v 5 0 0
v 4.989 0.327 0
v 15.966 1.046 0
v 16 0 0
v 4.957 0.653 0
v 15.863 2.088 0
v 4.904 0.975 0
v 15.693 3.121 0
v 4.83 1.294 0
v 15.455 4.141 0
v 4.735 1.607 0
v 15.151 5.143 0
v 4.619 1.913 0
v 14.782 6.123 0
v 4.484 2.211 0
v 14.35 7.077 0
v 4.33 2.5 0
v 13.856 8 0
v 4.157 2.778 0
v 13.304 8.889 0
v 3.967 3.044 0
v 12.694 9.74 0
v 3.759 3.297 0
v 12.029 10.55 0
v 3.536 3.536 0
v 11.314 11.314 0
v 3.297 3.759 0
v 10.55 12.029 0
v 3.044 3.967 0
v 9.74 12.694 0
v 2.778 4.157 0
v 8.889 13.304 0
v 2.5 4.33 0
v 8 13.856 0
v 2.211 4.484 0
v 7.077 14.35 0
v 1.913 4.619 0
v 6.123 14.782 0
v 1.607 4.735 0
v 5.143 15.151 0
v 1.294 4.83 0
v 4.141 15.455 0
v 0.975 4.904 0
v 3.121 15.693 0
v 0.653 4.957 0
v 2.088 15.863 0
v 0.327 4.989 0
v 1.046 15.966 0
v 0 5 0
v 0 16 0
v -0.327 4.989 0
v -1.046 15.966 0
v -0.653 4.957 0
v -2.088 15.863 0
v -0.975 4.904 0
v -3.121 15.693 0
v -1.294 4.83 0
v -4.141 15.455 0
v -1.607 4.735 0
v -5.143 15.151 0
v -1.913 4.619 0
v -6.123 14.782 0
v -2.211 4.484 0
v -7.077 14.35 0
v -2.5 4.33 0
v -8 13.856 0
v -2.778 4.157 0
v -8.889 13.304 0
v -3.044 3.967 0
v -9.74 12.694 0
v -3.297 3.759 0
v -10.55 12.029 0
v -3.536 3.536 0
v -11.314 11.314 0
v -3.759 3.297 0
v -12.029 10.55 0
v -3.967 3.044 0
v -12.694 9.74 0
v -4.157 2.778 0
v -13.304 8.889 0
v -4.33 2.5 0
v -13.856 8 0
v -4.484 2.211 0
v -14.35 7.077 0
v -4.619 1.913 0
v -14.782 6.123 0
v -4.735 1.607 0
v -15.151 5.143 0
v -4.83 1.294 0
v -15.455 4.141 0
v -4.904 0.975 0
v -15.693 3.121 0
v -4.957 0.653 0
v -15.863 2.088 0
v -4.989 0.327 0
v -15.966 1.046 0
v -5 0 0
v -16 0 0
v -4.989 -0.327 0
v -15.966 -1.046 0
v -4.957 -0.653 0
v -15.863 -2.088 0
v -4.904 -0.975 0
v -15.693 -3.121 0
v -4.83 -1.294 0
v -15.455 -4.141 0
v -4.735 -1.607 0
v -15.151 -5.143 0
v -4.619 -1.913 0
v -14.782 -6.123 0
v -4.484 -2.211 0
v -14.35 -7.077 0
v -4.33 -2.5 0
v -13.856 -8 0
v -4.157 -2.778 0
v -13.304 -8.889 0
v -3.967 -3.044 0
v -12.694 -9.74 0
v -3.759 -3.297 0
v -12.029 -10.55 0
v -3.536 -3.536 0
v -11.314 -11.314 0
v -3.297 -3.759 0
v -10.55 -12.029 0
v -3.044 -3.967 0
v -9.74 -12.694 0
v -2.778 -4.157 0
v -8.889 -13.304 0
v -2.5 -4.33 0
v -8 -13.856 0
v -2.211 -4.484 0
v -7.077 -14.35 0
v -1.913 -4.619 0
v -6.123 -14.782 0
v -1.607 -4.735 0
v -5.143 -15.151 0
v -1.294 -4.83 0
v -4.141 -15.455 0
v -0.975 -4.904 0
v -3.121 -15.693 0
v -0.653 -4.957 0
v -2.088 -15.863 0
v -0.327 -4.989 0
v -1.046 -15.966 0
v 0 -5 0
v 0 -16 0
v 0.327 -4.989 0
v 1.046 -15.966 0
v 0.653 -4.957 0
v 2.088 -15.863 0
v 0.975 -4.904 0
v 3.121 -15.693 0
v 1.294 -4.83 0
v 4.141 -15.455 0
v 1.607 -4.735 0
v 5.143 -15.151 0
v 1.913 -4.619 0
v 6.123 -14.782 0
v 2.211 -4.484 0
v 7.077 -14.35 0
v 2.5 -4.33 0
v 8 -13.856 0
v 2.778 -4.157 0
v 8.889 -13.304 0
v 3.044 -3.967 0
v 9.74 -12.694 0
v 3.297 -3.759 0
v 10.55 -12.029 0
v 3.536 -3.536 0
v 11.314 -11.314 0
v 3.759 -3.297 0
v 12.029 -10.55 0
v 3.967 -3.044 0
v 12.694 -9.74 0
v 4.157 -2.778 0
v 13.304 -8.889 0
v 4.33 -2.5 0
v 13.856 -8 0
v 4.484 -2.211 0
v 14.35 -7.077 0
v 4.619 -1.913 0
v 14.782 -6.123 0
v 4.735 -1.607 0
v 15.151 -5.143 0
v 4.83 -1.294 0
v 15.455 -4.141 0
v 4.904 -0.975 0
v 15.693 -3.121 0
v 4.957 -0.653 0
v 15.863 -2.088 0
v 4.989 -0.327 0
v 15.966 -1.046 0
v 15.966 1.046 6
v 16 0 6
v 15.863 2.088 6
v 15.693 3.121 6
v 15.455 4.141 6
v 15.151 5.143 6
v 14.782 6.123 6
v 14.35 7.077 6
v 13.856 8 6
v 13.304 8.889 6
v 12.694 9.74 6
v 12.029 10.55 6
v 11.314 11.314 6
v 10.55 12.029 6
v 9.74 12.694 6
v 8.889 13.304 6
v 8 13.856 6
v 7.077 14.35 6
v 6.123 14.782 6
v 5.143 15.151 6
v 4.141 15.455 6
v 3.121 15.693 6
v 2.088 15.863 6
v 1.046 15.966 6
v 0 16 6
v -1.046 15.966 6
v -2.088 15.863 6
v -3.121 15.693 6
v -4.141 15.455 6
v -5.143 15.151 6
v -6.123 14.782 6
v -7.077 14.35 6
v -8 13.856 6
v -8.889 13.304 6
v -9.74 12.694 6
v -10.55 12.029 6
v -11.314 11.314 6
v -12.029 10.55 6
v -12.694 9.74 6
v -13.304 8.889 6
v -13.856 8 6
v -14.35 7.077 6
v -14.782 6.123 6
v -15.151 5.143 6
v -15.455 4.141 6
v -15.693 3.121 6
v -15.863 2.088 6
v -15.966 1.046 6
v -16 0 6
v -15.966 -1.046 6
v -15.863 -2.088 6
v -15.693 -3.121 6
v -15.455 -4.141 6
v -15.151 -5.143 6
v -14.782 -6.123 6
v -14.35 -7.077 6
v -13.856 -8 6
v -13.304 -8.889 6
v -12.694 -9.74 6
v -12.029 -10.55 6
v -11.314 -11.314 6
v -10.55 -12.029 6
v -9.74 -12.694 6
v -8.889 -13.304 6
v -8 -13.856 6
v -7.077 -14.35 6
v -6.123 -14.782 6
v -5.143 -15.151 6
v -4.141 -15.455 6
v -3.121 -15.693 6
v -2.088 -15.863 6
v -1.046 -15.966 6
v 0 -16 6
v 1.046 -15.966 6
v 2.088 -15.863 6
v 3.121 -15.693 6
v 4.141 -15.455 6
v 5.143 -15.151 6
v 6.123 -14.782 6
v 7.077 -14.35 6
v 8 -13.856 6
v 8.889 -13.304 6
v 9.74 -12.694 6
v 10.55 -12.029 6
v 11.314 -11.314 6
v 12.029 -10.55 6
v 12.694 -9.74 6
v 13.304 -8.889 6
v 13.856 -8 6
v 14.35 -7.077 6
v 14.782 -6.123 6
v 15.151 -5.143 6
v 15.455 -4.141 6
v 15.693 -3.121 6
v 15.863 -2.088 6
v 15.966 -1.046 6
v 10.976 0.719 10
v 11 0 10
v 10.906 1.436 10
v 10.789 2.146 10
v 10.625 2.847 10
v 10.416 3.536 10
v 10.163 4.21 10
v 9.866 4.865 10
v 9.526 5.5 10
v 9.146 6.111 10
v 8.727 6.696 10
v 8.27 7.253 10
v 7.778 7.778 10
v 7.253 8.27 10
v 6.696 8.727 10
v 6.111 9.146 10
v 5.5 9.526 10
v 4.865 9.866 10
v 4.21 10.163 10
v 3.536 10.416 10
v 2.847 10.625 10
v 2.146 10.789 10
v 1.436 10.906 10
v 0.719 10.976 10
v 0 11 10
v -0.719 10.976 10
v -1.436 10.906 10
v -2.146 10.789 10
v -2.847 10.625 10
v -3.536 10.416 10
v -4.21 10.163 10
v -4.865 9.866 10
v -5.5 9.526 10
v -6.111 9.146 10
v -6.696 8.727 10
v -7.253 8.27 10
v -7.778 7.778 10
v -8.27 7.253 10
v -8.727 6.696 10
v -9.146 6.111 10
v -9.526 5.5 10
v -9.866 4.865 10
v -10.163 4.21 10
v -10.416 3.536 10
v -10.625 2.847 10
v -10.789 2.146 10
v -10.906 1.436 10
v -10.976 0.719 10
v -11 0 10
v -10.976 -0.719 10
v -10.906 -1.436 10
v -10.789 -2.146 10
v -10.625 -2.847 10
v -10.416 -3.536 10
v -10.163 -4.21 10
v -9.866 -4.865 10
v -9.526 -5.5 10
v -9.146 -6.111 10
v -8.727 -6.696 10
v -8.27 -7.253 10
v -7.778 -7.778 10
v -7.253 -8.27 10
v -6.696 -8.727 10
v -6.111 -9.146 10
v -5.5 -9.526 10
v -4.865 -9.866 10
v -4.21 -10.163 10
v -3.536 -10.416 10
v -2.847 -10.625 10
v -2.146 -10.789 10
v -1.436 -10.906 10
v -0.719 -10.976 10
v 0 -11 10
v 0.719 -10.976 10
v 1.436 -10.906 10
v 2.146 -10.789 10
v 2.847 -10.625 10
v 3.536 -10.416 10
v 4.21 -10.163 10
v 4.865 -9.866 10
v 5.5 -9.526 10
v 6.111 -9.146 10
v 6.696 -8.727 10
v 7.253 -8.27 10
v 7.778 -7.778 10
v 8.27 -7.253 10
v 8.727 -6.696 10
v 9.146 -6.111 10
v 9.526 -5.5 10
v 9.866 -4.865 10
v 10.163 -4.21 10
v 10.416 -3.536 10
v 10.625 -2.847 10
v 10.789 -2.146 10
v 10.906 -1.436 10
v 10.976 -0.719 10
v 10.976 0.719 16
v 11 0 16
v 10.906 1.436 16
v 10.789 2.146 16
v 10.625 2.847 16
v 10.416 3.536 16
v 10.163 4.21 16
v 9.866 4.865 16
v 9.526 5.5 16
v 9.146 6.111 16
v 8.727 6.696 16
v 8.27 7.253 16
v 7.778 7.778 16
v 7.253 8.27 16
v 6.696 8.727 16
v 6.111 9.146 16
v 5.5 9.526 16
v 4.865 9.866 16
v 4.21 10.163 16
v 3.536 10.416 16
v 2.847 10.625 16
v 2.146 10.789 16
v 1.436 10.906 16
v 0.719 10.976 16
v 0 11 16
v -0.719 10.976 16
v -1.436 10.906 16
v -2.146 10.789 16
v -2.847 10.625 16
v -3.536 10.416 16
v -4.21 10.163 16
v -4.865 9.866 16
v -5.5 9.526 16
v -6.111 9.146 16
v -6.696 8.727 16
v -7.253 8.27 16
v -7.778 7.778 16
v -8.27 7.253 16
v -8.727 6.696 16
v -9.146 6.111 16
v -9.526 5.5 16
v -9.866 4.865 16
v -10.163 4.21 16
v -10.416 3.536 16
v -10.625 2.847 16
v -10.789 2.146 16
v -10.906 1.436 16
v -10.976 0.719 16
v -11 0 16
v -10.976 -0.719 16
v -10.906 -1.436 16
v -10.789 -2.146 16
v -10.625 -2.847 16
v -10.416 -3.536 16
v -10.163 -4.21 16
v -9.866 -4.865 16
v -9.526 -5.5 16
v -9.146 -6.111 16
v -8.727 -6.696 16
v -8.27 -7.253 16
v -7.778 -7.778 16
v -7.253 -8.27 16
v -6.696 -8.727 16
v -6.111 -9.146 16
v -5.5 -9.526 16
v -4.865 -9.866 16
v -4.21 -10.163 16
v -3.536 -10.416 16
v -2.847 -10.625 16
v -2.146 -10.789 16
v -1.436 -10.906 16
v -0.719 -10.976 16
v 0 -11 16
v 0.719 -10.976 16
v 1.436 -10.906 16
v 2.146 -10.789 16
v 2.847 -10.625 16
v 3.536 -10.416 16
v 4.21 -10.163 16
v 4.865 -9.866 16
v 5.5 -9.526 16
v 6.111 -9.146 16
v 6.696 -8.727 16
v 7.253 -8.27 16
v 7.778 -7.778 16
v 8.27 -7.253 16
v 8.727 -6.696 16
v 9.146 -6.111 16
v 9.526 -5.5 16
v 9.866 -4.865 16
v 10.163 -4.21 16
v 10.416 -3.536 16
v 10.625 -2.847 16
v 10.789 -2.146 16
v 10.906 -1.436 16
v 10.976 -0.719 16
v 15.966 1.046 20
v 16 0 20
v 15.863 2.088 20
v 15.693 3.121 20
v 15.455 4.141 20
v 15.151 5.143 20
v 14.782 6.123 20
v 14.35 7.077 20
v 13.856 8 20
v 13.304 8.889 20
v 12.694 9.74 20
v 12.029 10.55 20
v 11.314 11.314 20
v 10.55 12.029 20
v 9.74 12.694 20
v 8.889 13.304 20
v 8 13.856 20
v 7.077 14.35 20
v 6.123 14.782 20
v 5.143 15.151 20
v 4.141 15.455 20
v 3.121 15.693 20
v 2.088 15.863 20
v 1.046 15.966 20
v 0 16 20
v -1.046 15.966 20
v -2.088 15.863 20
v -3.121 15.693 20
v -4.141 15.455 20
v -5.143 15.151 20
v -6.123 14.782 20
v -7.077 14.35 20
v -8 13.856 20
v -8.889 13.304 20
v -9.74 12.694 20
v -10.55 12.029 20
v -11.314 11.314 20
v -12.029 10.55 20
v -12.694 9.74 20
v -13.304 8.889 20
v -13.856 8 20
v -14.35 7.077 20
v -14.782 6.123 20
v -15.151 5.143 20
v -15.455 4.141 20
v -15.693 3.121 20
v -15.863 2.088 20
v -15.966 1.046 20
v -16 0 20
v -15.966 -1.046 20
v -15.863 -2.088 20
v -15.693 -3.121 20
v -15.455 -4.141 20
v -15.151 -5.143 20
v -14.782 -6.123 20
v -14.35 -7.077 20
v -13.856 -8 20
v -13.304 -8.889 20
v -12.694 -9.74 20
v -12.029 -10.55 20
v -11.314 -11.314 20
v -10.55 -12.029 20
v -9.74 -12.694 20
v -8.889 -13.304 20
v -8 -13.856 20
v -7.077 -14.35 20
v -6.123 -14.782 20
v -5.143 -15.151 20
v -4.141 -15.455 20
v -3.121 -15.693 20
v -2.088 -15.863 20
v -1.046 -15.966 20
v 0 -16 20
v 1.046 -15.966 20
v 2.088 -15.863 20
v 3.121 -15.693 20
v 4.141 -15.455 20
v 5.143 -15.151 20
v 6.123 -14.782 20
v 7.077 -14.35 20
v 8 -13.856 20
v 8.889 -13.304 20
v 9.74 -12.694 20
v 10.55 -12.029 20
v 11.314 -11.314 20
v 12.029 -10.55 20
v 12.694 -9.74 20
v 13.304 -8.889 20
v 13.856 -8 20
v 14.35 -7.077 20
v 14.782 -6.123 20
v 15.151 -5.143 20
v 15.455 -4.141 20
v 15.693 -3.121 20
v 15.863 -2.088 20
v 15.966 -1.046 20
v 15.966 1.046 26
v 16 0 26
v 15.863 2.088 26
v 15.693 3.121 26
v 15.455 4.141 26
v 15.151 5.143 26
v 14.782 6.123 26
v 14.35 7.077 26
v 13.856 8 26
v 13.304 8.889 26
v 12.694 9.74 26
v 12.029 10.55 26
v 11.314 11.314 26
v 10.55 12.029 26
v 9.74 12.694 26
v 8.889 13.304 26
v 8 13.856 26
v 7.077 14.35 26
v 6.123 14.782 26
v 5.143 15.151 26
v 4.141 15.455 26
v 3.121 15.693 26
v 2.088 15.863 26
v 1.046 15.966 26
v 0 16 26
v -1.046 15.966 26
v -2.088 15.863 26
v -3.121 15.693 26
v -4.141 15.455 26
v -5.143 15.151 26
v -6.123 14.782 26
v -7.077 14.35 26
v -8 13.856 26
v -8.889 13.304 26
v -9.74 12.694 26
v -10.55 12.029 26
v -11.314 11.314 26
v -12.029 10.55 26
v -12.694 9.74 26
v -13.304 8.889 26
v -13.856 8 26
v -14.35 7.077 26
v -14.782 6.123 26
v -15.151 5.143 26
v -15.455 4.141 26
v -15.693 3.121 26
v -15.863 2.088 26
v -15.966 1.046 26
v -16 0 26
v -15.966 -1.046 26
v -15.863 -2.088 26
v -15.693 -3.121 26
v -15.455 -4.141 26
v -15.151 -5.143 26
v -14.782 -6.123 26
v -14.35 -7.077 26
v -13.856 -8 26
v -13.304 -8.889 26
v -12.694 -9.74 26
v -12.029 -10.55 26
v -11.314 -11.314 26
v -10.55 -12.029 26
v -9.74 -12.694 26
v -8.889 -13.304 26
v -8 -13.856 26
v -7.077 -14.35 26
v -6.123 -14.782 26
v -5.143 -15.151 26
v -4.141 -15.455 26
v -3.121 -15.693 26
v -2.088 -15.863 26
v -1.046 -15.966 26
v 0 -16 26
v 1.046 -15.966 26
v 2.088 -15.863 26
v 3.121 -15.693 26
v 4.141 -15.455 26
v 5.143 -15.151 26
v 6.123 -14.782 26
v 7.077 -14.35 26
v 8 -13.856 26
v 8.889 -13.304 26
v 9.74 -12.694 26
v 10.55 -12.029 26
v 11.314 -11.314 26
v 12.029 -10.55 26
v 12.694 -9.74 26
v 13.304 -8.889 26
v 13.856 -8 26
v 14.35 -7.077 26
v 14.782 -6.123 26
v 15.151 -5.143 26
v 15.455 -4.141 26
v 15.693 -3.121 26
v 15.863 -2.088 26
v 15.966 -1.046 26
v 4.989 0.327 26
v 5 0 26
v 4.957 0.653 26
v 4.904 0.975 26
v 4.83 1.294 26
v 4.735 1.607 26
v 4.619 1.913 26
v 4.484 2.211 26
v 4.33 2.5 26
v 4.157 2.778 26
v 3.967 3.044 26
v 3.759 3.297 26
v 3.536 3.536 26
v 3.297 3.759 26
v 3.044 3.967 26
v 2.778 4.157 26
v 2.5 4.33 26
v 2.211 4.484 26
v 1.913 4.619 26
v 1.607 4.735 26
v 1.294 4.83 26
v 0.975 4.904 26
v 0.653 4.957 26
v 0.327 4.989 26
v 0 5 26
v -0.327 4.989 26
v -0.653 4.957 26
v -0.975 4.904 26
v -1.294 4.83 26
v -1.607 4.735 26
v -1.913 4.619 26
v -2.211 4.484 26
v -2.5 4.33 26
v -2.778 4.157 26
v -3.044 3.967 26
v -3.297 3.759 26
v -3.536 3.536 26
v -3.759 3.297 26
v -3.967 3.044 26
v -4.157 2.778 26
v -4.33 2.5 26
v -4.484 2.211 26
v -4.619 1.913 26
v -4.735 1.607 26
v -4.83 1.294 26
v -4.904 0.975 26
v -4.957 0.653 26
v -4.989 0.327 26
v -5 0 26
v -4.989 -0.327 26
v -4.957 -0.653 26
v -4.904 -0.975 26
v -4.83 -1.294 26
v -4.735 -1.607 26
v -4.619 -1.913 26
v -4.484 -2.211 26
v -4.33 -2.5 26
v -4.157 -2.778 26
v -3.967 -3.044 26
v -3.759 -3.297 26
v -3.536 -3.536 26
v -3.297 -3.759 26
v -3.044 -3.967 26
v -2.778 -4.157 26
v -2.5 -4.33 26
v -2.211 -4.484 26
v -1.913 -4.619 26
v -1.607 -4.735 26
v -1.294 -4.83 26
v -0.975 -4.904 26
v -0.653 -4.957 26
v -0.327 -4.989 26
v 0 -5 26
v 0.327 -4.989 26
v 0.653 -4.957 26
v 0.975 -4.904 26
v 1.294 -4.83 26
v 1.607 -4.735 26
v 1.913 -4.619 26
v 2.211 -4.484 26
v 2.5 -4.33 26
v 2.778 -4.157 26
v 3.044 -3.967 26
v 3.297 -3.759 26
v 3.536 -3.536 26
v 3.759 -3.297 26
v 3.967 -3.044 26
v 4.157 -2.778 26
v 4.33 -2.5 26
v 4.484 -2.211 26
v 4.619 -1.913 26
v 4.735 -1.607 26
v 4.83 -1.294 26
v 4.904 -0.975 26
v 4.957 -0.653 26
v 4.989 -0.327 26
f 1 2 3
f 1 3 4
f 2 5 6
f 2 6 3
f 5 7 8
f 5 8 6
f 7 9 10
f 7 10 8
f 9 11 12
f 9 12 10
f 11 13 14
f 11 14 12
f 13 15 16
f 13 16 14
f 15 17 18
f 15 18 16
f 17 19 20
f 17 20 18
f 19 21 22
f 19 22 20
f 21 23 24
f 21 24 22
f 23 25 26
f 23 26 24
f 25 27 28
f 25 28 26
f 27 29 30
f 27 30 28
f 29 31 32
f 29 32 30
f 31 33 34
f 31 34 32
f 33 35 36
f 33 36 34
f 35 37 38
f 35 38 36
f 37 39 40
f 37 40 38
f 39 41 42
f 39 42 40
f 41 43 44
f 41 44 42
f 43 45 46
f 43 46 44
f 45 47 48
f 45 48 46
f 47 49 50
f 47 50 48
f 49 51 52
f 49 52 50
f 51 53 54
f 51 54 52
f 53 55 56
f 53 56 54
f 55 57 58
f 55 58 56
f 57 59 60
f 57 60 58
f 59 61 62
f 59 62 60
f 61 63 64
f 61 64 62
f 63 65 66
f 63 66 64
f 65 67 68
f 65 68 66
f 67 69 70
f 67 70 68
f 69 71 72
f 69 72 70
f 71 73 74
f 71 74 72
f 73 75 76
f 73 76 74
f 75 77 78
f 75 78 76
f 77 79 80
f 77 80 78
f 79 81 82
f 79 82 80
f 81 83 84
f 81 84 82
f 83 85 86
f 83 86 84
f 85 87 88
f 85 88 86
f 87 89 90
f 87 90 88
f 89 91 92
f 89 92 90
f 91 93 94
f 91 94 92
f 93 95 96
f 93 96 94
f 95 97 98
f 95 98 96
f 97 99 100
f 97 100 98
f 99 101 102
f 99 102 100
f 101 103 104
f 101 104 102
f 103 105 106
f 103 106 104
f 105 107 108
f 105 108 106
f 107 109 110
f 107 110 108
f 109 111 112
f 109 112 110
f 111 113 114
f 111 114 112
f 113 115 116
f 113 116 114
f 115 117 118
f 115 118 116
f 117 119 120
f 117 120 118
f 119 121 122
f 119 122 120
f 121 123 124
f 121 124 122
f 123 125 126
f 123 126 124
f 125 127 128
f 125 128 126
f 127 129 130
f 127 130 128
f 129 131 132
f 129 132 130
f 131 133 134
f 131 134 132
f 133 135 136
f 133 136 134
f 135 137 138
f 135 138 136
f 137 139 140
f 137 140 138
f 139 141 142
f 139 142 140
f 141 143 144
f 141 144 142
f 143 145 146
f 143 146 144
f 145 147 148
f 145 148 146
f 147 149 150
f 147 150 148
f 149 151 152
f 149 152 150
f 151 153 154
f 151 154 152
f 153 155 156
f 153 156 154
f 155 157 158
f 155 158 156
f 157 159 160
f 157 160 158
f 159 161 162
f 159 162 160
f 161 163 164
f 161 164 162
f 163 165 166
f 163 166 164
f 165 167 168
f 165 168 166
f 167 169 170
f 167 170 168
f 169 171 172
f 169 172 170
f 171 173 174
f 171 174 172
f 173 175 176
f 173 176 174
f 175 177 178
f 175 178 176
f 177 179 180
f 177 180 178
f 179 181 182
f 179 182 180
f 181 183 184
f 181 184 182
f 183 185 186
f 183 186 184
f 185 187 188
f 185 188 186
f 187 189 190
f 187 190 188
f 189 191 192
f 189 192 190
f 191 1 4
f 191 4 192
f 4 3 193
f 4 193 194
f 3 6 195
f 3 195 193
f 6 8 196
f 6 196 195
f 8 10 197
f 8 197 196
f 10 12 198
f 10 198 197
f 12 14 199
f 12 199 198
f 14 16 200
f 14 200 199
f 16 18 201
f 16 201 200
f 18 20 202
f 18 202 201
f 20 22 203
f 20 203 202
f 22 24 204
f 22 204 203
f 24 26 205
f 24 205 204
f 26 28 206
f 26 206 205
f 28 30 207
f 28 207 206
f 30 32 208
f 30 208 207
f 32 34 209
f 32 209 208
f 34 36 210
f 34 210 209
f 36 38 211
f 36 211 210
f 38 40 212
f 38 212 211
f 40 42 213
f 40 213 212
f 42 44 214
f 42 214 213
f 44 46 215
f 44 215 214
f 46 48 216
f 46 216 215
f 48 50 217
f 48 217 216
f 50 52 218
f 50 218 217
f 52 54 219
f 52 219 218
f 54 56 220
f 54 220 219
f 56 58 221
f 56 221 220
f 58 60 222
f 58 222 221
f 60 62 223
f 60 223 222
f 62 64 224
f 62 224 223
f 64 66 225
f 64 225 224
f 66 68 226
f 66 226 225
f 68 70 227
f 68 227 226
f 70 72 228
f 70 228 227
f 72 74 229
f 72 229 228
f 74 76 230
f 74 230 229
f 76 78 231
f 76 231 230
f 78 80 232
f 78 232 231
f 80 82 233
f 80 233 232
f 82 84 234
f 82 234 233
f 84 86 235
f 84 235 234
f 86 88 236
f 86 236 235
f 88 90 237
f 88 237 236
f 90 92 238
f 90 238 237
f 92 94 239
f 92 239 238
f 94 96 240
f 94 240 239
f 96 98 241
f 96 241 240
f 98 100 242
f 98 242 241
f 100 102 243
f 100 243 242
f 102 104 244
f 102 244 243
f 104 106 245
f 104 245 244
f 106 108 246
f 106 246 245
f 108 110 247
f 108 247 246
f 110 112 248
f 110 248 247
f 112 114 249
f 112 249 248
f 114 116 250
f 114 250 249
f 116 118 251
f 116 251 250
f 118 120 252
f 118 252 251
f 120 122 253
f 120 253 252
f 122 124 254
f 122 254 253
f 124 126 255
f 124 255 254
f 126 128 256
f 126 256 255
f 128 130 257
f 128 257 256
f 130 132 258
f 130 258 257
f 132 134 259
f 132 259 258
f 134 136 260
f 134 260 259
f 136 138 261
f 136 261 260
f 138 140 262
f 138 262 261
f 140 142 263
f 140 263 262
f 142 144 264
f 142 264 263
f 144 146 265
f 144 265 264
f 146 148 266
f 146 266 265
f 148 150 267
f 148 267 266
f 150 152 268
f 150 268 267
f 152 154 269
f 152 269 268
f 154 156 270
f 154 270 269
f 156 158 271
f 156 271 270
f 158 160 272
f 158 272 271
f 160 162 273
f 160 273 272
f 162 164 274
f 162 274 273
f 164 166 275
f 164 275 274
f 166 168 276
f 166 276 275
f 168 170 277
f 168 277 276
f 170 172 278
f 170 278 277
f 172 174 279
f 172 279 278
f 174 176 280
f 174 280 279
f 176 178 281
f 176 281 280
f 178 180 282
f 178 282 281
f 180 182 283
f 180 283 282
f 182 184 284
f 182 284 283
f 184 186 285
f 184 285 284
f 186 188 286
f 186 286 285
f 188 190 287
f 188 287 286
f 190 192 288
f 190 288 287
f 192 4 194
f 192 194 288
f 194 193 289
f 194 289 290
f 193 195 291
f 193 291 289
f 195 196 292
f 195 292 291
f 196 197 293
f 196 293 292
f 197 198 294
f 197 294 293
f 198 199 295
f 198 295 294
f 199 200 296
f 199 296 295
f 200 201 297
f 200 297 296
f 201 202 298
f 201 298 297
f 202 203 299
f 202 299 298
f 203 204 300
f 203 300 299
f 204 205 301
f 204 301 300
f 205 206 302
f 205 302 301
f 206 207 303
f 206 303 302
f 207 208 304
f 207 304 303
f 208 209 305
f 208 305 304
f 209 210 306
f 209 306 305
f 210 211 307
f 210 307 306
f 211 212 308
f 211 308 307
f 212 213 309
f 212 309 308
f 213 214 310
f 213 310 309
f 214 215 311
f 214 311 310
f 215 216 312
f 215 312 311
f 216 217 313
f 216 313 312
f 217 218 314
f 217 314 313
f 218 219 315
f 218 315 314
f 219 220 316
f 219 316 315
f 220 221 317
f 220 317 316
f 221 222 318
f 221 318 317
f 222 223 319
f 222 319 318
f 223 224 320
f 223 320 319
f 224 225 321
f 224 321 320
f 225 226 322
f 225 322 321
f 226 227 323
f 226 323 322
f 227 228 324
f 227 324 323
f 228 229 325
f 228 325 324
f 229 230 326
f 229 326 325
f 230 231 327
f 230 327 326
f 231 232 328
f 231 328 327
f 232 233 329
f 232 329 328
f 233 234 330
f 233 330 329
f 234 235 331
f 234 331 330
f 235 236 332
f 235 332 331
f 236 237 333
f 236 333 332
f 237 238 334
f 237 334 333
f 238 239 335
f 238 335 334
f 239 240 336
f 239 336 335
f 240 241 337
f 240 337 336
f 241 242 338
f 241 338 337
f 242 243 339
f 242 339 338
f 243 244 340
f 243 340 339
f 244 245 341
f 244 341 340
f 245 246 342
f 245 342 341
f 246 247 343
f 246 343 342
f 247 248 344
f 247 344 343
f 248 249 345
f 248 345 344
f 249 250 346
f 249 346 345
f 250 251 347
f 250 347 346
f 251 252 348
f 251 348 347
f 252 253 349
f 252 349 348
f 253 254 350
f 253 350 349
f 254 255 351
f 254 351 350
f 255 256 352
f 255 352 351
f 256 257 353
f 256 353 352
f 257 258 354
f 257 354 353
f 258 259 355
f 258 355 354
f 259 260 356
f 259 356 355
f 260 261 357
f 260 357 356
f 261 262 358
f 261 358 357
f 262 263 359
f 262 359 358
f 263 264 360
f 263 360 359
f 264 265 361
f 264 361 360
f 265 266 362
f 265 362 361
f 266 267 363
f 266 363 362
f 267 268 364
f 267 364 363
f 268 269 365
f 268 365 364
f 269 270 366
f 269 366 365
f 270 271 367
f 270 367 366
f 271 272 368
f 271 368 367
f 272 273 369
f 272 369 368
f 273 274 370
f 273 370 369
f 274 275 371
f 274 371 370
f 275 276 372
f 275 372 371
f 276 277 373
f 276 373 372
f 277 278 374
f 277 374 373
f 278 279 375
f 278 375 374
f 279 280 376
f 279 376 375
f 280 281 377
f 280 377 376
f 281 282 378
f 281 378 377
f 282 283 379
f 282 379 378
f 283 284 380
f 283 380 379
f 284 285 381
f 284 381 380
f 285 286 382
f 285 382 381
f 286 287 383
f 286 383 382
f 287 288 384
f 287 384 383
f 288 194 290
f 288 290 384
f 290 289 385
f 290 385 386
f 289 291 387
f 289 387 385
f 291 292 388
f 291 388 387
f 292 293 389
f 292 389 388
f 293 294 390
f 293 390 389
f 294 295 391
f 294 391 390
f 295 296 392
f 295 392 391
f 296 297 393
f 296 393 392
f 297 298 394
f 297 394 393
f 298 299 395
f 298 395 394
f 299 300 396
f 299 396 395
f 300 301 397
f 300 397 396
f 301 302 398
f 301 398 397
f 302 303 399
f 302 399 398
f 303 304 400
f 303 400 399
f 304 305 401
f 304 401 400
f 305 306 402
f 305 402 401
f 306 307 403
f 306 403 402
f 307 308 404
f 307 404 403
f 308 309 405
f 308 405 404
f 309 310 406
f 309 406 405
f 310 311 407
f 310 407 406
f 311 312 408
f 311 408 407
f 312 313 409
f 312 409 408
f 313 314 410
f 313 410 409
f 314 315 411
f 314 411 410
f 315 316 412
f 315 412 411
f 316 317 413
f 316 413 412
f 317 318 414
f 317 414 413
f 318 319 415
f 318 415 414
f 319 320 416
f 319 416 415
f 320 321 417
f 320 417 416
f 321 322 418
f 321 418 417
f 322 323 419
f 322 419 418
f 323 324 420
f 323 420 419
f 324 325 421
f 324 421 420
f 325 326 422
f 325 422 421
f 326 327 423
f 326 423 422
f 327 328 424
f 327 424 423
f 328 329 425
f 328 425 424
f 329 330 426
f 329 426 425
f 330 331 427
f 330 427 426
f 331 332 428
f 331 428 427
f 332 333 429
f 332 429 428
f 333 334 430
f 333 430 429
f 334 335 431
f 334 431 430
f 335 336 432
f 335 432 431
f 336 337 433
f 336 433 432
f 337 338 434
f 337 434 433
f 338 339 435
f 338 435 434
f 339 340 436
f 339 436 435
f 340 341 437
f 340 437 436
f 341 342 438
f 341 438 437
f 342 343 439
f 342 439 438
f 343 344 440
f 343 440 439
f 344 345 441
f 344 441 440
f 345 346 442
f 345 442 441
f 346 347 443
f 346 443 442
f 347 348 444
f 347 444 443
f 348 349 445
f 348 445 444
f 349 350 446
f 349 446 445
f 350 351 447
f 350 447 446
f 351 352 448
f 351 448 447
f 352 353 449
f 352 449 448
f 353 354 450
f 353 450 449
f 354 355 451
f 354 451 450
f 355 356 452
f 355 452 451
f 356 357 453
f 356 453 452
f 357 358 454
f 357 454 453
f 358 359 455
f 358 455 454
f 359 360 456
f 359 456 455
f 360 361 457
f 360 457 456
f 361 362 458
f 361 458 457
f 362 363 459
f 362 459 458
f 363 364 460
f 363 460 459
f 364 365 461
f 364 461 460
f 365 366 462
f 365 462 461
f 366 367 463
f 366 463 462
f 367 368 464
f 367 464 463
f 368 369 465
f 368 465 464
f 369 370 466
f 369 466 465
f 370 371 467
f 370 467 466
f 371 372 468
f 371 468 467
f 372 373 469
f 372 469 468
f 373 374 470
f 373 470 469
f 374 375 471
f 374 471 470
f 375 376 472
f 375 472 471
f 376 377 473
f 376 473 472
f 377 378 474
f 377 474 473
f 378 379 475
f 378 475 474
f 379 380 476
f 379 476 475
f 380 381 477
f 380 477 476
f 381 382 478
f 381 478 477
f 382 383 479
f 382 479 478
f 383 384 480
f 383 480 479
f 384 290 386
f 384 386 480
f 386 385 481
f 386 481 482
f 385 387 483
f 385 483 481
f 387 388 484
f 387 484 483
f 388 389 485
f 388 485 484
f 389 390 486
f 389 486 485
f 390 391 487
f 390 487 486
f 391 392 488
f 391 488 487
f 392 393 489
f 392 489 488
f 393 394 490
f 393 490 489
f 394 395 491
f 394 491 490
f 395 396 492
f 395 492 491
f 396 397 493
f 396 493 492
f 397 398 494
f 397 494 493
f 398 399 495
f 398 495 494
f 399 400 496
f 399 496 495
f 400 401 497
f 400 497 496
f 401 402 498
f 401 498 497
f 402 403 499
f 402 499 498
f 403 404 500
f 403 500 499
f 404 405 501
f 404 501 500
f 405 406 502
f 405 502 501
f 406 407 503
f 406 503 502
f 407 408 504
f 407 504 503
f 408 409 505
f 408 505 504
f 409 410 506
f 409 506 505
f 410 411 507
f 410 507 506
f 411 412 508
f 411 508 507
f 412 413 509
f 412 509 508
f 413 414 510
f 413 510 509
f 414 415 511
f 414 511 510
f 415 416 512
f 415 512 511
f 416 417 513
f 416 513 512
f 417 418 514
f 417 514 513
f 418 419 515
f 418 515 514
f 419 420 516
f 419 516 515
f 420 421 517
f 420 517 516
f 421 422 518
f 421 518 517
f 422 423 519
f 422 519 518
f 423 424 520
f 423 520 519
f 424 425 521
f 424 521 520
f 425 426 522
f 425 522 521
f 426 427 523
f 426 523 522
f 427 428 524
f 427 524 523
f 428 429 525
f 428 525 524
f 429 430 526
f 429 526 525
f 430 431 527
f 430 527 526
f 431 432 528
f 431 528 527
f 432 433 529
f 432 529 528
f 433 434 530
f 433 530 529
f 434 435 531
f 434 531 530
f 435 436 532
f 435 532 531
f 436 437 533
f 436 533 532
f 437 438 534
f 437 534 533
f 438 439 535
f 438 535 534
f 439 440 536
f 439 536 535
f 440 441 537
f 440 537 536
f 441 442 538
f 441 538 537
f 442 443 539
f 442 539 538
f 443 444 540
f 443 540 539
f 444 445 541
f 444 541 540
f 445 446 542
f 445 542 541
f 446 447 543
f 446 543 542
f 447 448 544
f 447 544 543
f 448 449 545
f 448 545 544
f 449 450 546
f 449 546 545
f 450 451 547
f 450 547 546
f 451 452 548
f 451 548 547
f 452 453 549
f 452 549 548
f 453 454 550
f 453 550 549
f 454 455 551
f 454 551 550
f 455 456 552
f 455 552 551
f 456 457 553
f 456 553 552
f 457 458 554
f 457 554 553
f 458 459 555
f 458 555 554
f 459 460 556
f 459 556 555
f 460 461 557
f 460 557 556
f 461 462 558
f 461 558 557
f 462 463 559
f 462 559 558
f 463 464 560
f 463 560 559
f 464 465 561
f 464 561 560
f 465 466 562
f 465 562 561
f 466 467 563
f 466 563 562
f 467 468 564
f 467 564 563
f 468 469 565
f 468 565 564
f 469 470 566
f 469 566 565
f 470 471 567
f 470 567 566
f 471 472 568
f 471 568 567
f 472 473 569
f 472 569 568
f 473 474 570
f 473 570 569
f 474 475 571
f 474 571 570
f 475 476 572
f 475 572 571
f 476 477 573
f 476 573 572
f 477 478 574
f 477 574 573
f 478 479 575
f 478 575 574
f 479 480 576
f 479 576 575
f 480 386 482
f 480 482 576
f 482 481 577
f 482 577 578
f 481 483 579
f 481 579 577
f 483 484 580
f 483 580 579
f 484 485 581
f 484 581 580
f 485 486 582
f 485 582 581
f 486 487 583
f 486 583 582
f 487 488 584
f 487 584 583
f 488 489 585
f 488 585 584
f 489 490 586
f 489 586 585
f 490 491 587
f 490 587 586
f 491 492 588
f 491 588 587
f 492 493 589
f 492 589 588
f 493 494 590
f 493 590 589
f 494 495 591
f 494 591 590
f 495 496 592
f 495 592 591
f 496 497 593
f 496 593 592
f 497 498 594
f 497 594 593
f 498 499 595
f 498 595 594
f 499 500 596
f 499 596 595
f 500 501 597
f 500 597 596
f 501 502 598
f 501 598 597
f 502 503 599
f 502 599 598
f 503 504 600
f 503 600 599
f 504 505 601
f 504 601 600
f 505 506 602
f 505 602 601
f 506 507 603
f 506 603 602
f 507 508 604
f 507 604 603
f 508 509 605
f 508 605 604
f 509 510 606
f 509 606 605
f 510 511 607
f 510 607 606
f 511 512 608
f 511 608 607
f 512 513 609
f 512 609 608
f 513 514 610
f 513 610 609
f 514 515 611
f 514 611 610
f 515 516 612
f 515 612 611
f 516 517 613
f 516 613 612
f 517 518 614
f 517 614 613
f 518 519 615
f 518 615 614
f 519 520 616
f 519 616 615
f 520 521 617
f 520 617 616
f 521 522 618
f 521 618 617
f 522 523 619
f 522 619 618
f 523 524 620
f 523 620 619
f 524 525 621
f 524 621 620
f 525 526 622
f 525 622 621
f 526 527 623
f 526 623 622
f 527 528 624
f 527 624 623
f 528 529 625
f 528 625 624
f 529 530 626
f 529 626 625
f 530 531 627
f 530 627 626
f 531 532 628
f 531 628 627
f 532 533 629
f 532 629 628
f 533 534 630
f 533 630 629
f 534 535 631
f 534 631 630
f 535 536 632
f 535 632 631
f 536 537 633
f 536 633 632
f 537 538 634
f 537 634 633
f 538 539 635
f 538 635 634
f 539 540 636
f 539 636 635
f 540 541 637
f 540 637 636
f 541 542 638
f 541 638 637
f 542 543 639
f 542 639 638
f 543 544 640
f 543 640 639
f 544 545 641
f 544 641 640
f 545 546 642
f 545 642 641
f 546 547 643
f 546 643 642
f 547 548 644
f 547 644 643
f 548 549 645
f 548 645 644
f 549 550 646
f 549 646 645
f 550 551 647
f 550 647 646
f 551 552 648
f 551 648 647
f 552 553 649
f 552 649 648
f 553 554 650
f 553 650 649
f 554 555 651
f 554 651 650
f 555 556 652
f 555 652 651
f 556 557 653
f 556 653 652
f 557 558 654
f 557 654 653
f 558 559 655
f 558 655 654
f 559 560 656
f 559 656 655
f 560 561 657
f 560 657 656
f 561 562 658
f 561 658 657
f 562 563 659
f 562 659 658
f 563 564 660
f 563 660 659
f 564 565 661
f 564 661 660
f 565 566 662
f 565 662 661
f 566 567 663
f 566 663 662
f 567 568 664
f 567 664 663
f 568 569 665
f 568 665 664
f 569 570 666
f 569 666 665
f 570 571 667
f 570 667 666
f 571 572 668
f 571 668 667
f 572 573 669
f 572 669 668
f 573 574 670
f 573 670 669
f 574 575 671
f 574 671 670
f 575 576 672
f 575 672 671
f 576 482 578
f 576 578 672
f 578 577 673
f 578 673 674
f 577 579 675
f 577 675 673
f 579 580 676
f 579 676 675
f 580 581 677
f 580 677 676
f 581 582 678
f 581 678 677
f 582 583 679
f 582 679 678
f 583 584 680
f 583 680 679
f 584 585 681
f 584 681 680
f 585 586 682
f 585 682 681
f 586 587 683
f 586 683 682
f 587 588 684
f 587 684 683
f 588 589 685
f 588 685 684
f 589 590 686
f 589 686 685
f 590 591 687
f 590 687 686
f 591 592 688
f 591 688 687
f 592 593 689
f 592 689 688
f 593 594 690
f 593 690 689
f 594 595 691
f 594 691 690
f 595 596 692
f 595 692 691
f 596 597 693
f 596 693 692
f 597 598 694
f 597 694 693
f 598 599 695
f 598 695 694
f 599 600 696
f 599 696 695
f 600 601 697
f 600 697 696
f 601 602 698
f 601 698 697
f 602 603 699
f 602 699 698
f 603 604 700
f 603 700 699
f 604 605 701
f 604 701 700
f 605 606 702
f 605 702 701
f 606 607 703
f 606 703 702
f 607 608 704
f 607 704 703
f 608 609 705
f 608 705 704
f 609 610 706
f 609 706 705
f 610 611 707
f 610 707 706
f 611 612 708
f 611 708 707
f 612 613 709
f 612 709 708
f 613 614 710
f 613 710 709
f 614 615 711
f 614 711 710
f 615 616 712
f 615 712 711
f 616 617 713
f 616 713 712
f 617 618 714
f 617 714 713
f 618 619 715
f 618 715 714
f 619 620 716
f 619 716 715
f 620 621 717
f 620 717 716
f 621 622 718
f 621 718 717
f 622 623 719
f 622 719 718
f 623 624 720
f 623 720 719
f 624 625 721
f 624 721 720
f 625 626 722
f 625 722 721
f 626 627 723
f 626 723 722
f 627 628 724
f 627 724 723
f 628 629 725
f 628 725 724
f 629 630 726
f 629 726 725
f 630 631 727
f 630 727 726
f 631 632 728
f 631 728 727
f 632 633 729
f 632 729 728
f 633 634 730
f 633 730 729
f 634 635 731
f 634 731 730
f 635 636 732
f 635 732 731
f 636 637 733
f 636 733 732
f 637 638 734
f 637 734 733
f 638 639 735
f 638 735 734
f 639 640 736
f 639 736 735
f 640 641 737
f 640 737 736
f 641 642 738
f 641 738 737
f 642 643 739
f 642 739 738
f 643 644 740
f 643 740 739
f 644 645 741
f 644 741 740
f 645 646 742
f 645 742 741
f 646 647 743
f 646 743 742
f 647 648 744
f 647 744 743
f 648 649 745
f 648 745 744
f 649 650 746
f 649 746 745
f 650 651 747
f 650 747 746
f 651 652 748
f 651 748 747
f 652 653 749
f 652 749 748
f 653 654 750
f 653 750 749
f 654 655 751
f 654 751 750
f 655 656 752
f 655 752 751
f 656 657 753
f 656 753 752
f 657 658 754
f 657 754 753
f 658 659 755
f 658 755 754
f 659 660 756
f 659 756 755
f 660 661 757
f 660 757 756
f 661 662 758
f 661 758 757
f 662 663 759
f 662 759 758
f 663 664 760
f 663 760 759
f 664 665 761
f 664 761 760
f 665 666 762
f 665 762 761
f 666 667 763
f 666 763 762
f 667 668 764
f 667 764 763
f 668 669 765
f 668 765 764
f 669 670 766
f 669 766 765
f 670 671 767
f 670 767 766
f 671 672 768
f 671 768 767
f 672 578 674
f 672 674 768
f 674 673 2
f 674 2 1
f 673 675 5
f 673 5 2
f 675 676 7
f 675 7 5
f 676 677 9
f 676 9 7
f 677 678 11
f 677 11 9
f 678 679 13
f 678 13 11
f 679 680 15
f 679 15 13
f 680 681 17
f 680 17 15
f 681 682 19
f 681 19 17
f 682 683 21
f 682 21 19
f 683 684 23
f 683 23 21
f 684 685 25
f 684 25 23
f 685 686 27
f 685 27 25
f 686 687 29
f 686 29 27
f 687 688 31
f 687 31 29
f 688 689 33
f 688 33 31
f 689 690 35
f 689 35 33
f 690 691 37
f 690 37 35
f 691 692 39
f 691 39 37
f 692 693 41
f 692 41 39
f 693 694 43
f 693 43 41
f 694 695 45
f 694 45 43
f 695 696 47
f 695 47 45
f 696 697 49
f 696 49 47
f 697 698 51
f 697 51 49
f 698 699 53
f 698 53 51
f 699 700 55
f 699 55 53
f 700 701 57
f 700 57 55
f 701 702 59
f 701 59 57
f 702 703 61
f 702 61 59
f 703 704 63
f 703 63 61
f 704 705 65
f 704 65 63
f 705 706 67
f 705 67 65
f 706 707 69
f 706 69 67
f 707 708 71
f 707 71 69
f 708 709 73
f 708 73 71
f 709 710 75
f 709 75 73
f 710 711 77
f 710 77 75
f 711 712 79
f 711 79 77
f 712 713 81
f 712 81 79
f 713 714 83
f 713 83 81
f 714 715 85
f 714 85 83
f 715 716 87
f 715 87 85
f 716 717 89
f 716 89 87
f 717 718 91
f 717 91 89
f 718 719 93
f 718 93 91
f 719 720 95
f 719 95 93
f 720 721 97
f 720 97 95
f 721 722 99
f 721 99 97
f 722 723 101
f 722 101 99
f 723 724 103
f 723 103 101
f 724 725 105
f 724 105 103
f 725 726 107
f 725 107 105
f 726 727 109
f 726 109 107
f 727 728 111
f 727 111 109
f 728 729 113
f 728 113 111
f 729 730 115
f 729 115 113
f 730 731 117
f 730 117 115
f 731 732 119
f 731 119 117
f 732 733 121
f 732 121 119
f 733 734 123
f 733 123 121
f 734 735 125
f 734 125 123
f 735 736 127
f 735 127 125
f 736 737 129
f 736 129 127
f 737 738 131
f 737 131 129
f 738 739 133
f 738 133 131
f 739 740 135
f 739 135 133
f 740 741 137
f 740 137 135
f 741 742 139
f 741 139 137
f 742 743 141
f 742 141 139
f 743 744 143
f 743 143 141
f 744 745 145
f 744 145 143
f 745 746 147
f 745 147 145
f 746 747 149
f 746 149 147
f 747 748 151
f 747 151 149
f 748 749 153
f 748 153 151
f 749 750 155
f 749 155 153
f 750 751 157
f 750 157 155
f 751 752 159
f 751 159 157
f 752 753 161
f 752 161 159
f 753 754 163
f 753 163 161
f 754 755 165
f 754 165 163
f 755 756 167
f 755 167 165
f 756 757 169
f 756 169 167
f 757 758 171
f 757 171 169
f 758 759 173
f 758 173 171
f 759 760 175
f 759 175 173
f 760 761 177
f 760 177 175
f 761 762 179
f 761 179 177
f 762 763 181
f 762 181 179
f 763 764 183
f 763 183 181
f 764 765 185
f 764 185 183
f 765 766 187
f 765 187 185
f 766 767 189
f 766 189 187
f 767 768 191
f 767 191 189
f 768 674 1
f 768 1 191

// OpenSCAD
// Original MechIntel educational model. CC0-1.0. Units: mm.
// Not a standardized or load-rated component.
$fn=96;
// Section points: [radius, height], mm. Edit to change the profile.
section=[[5, 0], [16, 0], [16, 6], [11, 10], [11, 16], [16, 20], [16, 26], [5, 26]];
rotate_extrude($fn=96) polygon(points=section);
